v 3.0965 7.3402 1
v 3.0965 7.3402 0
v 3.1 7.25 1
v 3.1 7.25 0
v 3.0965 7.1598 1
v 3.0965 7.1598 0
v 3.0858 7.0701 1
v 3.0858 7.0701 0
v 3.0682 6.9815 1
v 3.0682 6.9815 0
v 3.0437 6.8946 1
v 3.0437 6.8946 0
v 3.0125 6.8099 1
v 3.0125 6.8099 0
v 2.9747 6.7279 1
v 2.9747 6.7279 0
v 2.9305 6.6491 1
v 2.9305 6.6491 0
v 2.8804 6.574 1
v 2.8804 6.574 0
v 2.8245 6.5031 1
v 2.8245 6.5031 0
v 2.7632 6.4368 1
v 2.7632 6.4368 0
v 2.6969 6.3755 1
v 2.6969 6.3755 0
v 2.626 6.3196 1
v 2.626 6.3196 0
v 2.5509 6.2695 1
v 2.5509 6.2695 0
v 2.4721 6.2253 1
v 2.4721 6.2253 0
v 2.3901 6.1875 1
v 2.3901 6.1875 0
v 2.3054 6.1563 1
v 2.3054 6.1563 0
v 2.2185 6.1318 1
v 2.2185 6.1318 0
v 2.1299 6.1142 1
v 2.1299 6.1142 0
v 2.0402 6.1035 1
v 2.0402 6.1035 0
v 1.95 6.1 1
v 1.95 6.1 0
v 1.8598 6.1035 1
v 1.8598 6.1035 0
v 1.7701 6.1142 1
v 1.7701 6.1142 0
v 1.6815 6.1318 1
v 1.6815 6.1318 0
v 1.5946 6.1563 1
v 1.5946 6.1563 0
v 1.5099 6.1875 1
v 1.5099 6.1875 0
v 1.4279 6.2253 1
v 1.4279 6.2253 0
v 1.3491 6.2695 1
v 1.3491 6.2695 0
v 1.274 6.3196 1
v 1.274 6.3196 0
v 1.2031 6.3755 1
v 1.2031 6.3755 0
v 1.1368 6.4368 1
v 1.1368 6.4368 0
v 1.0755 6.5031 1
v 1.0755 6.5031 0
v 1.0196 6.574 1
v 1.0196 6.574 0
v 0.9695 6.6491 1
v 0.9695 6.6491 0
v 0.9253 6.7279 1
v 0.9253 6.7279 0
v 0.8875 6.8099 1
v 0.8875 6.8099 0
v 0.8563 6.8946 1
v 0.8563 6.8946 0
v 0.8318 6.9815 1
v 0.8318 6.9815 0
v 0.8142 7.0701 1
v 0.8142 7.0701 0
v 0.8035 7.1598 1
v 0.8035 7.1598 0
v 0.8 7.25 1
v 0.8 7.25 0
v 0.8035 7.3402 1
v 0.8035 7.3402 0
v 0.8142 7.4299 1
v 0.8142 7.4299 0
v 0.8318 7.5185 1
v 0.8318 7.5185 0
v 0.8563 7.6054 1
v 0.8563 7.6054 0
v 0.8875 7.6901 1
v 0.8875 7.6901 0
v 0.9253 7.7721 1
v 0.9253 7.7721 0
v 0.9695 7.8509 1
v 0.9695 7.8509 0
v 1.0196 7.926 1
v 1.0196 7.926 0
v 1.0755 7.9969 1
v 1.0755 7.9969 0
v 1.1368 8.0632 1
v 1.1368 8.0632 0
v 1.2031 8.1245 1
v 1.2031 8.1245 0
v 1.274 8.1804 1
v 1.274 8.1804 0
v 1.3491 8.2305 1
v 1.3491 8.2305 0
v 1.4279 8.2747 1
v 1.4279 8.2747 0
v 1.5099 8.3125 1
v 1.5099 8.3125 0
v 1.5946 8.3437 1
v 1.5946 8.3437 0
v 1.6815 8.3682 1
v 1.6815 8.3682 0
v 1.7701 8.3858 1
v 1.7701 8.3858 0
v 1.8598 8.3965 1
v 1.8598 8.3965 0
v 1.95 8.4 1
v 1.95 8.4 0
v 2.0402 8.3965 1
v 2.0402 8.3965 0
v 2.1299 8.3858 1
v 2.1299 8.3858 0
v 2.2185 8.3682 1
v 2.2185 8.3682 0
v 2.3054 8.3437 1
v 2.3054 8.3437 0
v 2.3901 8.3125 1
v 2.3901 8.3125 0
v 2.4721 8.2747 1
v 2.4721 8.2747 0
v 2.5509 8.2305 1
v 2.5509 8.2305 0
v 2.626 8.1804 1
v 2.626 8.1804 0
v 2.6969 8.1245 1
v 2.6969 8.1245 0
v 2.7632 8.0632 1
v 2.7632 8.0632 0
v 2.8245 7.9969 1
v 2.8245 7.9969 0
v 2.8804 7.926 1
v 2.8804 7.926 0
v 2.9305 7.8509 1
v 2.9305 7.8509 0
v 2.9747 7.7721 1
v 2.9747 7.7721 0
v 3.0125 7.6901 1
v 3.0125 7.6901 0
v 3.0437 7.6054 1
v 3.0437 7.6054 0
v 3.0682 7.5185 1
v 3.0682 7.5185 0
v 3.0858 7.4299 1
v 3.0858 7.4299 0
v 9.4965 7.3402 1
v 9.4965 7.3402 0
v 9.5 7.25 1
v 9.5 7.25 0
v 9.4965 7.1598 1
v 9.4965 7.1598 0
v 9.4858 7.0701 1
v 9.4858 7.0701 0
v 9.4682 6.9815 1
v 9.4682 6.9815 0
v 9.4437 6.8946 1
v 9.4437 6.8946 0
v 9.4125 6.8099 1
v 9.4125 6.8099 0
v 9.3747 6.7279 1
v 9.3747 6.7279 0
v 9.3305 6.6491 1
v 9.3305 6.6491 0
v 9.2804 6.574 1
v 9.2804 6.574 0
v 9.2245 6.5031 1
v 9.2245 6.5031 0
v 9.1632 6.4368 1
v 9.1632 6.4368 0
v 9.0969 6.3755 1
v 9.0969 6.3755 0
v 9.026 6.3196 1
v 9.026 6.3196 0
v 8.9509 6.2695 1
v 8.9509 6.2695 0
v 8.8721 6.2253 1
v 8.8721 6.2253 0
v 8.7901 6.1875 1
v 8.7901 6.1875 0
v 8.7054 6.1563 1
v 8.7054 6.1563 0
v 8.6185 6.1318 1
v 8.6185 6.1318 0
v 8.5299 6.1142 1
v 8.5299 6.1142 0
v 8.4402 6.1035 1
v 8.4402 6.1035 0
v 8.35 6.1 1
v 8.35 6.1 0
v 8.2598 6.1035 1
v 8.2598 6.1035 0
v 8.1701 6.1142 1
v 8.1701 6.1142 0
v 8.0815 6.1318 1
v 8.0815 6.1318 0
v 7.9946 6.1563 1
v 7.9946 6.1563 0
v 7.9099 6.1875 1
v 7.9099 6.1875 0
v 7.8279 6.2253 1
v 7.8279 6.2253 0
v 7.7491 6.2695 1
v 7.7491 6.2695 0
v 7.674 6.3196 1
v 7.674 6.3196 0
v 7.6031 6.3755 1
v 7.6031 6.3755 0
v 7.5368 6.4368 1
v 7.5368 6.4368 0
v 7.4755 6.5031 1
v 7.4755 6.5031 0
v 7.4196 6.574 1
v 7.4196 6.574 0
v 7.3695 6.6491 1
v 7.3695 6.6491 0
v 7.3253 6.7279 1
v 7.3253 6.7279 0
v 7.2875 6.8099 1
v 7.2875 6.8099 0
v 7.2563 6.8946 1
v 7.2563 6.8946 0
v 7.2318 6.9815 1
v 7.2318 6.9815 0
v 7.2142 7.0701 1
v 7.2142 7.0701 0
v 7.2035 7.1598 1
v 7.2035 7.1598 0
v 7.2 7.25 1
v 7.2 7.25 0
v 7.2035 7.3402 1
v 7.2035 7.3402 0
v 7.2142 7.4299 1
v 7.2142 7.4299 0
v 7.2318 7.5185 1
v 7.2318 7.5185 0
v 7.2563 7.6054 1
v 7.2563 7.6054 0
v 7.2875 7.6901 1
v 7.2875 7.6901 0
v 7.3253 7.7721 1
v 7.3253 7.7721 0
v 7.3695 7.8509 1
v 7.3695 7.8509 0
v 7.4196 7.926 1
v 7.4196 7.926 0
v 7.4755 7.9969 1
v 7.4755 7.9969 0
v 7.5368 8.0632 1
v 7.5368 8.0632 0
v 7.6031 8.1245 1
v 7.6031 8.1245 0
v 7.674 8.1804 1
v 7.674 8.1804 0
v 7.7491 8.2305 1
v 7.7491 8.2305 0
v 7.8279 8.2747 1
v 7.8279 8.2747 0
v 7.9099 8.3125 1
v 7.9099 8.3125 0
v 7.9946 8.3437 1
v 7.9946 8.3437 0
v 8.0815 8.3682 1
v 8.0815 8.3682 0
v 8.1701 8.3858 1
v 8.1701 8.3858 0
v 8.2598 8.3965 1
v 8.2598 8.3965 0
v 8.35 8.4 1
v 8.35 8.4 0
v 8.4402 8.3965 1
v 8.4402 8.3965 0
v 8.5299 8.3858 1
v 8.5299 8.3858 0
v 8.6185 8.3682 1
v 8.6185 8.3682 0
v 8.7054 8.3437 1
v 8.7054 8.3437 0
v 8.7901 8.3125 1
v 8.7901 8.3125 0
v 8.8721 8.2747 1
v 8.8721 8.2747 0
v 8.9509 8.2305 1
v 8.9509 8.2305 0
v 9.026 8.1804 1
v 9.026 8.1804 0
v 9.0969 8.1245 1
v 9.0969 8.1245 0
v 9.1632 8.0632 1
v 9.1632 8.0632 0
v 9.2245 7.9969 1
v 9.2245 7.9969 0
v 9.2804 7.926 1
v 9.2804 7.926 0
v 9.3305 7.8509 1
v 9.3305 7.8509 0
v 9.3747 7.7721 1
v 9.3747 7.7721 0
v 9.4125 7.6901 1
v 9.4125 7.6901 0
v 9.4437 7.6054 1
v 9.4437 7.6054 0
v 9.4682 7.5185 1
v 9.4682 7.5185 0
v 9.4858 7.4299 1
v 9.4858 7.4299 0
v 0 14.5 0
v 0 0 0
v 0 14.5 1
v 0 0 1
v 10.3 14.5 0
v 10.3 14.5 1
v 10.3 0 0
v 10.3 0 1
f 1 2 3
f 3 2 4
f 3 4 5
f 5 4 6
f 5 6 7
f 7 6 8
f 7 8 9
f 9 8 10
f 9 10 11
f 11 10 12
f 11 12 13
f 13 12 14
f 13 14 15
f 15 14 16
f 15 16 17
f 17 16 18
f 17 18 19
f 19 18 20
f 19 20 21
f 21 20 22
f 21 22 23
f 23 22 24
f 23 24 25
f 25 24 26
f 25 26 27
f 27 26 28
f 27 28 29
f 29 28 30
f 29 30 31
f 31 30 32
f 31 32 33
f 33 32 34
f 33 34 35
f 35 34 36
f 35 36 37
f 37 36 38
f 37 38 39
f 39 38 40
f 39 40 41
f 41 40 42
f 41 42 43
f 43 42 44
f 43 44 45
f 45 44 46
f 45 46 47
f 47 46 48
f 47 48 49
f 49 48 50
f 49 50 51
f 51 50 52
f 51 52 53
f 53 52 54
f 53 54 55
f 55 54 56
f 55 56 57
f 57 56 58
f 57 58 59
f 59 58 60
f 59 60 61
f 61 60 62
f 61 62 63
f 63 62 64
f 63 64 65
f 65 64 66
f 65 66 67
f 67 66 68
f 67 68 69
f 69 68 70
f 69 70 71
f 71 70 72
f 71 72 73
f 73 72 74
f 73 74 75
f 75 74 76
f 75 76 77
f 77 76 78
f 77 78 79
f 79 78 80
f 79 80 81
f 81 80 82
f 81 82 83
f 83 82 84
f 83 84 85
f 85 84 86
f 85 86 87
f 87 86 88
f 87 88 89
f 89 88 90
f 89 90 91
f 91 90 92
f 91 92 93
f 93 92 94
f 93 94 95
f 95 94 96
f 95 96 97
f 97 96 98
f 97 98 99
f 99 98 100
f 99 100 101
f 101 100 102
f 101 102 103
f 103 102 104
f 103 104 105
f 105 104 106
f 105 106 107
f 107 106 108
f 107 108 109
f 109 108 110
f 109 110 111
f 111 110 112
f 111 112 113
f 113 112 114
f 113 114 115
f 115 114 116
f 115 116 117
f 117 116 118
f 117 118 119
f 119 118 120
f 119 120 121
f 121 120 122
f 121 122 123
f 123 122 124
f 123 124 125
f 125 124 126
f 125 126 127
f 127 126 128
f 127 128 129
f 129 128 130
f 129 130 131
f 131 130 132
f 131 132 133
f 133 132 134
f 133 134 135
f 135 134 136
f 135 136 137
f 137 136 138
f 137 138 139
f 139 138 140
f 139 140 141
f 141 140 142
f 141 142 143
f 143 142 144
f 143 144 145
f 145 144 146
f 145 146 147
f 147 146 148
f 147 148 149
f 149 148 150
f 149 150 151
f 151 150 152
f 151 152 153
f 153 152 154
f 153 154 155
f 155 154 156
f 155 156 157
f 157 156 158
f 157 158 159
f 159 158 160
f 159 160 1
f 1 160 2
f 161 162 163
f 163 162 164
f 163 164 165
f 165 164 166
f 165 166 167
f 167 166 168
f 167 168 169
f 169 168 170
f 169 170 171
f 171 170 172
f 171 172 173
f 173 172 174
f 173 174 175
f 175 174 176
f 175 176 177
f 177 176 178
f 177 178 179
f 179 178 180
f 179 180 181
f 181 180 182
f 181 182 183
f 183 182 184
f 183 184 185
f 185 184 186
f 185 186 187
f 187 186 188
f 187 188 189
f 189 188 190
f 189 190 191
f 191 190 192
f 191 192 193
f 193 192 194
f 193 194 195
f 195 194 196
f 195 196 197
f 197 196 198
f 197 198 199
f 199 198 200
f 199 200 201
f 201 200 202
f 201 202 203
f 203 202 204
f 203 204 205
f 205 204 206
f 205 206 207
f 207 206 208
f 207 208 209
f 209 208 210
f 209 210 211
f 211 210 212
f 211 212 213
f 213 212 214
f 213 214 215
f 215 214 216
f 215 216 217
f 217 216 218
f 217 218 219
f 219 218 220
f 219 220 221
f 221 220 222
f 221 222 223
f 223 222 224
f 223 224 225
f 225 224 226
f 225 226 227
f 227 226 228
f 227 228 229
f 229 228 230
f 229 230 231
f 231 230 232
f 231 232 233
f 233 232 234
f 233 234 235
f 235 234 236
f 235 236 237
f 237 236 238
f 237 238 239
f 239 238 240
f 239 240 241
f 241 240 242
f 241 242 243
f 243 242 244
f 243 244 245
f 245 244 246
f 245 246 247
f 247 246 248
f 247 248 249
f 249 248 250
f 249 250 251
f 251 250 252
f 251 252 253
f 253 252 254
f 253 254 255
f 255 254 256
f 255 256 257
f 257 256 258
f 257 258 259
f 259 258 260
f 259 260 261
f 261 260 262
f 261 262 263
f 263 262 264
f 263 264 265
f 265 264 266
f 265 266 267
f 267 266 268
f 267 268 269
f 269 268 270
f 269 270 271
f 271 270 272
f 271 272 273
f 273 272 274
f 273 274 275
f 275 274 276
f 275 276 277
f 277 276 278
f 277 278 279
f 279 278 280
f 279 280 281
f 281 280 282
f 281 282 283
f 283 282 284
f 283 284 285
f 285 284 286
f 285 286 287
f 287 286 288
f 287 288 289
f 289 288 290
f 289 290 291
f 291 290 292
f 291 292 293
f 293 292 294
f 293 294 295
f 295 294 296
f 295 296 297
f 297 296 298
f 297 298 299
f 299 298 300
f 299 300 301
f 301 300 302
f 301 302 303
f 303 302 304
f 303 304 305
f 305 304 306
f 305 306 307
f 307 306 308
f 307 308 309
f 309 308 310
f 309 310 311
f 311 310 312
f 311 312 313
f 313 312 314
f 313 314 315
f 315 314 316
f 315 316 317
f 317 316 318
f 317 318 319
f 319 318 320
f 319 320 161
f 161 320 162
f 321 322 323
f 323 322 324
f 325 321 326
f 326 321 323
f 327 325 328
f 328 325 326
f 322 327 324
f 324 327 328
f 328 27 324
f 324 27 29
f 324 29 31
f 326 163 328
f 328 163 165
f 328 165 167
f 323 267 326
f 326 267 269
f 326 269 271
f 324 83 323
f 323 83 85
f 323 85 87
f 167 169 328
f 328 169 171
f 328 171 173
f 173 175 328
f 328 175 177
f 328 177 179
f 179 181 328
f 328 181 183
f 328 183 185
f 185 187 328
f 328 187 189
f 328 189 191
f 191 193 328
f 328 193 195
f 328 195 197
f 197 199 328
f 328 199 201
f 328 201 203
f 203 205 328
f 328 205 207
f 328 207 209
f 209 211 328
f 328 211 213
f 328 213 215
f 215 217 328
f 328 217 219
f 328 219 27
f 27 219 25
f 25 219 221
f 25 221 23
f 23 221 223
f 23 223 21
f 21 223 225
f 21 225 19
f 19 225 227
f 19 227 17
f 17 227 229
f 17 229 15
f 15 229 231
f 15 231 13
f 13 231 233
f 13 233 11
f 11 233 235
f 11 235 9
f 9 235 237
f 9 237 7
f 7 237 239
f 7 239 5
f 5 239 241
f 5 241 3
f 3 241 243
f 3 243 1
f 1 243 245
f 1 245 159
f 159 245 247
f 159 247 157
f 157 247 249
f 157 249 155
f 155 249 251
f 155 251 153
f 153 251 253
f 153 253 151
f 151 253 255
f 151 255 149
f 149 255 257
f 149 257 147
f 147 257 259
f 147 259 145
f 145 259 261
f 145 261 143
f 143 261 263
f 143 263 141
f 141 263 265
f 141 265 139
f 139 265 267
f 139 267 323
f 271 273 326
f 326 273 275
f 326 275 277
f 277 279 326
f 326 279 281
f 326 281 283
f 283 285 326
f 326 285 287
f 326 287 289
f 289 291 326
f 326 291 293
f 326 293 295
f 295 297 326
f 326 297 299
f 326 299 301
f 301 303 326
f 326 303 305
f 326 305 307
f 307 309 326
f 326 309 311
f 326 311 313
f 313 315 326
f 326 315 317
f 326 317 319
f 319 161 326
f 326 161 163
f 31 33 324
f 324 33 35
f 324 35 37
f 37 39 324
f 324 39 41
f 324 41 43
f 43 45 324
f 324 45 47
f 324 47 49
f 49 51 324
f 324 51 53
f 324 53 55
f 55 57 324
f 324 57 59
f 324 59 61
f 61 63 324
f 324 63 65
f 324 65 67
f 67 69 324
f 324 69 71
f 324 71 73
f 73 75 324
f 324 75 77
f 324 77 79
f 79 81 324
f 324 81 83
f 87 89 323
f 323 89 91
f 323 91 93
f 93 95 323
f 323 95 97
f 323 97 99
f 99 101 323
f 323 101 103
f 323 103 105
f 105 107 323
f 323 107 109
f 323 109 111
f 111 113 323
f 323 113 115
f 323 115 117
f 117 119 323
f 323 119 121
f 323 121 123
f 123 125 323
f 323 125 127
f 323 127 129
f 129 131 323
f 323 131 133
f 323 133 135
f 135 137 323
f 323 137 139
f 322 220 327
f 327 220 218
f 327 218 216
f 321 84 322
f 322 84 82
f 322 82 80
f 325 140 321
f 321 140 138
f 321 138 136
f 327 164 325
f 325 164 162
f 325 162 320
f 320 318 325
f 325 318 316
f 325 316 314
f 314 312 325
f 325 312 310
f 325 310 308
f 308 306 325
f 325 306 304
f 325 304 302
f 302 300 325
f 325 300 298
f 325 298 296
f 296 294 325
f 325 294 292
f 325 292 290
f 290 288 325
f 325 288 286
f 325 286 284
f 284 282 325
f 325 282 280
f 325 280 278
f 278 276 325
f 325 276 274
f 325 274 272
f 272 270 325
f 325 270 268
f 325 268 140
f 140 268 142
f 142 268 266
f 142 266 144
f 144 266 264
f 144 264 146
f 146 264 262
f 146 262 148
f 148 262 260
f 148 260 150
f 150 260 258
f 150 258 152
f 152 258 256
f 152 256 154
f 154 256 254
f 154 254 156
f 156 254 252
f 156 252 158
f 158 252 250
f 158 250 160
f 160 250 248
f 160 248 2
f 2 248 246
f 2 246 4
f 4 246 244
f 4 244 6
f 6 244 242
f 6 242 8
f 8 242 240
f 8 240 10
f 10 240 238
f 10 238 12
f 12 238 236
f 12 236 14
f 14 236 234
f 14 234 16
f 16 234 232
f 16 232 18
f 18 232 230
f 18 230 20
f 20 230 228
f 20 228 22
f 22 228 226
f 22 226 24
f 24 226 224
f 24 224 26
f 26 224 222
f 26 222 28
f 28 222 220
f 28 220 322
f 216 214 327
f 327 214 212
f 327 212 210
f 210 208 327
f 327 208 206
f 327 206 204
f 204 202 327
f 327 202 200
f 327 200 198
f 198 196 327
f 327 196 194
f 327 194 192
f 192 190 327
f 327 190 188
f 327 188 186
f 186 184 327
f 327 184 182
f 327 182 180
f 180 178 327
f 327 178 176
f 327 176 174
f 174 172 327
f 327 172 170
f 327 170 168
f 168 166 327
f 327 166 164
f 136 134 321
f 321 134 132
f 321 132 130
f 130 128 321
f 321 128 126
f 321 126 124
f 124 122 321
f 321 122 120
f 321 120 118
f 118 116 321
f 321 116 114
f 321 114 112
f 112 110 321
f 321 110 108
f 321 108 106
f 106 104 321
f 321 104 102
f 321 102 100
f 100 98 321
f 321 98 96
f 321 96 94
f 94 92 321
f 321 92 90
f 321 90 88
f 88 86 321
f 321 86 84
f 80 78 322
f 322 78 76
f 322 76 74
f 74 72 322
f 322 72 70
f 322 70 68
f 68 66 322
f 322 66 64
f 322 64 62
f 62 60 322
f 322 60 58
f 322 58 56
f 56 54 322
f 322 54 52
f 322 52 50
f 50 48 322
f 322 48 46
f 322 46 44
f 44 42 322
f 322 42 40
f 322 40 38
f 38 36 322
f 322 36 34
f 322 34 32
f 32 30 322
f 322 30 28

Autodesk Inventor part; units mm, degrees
ref_plane "YZ Plane" through (0, 0, 0) normal (1, 0, 0) x (0, 1, 0)
ref_plane "XZ Plane" through (0, 0, 0) normal (0, 1, 0) x (-1, 0, 0)
ref_plane "XY Plane" through (0, 0, 0) normal (0, 0, 1) x (1, 0, 0)
sketch "Sketch1" plane through (0, 0, 0) normal (0, 0, 1) x (1, 0, 0)
  line L0 (0, 0) -> (10.3, 0)
  line L1 (10.3, 0) -> (10.3, 14.5)
  line L2 (10.3, 14.5) -> (0, 14.5)
  line L3 (0, 14.5) -> (0, 0)
  line L4 (3.9, 0) -> (6.4, 0)
  line L5 (6.4, 0) -> (6.4, 14.5)
  line L6 (6.4, 14.5) -> (3.9, 14.5)
  line L7 (3.9, 14.5) -> (3.9, 0)
  line L8 (0, 0) -> (10.3, 0)
  line L9 (10.3, 0) -> (10.3, -3)
  line L10 (10.3, -3) -> (0, -3)
  line L11 (0, -3) -> (0, 0)
  circle A0 centre (1.95, 7.25) radius 1.15
  circle A1 centre (8.35, 7.25) radius 1.15
  dimension "d0" = 10.3
  dimension "d1" = 14.5
  dimension "d2" = 2.5
  dimension "d3" = 3
  dimension "d4" = 3.9
  dimension "d5" = 0
  dimension "d6" = 2.3
  dimension "d7" = 1.95
  dimension "d8" = 7.25
  dimension "d9" = 2.3
  dimension "d10" = 1.95
  dimension "d11" = 7.25
extrude "Extrusion2" add sketch "Sketch1" along normal blind 1 contours L3 L2 L7 L0 | L7 L2 L5 L0 | L5 L2 L1 L0
equation "\"d4\" = -0.5 * d2 + 0.5 * d0"
equation "\"d7\" = 0.5 * d4"
equation "\"d8\" = 0.5 * d1"
equation "\"d9\" = d6"
equation "\"d10\" = d7"
equation "\"d11\" = d8"
properties part number "control_arm_backplate_mount"
